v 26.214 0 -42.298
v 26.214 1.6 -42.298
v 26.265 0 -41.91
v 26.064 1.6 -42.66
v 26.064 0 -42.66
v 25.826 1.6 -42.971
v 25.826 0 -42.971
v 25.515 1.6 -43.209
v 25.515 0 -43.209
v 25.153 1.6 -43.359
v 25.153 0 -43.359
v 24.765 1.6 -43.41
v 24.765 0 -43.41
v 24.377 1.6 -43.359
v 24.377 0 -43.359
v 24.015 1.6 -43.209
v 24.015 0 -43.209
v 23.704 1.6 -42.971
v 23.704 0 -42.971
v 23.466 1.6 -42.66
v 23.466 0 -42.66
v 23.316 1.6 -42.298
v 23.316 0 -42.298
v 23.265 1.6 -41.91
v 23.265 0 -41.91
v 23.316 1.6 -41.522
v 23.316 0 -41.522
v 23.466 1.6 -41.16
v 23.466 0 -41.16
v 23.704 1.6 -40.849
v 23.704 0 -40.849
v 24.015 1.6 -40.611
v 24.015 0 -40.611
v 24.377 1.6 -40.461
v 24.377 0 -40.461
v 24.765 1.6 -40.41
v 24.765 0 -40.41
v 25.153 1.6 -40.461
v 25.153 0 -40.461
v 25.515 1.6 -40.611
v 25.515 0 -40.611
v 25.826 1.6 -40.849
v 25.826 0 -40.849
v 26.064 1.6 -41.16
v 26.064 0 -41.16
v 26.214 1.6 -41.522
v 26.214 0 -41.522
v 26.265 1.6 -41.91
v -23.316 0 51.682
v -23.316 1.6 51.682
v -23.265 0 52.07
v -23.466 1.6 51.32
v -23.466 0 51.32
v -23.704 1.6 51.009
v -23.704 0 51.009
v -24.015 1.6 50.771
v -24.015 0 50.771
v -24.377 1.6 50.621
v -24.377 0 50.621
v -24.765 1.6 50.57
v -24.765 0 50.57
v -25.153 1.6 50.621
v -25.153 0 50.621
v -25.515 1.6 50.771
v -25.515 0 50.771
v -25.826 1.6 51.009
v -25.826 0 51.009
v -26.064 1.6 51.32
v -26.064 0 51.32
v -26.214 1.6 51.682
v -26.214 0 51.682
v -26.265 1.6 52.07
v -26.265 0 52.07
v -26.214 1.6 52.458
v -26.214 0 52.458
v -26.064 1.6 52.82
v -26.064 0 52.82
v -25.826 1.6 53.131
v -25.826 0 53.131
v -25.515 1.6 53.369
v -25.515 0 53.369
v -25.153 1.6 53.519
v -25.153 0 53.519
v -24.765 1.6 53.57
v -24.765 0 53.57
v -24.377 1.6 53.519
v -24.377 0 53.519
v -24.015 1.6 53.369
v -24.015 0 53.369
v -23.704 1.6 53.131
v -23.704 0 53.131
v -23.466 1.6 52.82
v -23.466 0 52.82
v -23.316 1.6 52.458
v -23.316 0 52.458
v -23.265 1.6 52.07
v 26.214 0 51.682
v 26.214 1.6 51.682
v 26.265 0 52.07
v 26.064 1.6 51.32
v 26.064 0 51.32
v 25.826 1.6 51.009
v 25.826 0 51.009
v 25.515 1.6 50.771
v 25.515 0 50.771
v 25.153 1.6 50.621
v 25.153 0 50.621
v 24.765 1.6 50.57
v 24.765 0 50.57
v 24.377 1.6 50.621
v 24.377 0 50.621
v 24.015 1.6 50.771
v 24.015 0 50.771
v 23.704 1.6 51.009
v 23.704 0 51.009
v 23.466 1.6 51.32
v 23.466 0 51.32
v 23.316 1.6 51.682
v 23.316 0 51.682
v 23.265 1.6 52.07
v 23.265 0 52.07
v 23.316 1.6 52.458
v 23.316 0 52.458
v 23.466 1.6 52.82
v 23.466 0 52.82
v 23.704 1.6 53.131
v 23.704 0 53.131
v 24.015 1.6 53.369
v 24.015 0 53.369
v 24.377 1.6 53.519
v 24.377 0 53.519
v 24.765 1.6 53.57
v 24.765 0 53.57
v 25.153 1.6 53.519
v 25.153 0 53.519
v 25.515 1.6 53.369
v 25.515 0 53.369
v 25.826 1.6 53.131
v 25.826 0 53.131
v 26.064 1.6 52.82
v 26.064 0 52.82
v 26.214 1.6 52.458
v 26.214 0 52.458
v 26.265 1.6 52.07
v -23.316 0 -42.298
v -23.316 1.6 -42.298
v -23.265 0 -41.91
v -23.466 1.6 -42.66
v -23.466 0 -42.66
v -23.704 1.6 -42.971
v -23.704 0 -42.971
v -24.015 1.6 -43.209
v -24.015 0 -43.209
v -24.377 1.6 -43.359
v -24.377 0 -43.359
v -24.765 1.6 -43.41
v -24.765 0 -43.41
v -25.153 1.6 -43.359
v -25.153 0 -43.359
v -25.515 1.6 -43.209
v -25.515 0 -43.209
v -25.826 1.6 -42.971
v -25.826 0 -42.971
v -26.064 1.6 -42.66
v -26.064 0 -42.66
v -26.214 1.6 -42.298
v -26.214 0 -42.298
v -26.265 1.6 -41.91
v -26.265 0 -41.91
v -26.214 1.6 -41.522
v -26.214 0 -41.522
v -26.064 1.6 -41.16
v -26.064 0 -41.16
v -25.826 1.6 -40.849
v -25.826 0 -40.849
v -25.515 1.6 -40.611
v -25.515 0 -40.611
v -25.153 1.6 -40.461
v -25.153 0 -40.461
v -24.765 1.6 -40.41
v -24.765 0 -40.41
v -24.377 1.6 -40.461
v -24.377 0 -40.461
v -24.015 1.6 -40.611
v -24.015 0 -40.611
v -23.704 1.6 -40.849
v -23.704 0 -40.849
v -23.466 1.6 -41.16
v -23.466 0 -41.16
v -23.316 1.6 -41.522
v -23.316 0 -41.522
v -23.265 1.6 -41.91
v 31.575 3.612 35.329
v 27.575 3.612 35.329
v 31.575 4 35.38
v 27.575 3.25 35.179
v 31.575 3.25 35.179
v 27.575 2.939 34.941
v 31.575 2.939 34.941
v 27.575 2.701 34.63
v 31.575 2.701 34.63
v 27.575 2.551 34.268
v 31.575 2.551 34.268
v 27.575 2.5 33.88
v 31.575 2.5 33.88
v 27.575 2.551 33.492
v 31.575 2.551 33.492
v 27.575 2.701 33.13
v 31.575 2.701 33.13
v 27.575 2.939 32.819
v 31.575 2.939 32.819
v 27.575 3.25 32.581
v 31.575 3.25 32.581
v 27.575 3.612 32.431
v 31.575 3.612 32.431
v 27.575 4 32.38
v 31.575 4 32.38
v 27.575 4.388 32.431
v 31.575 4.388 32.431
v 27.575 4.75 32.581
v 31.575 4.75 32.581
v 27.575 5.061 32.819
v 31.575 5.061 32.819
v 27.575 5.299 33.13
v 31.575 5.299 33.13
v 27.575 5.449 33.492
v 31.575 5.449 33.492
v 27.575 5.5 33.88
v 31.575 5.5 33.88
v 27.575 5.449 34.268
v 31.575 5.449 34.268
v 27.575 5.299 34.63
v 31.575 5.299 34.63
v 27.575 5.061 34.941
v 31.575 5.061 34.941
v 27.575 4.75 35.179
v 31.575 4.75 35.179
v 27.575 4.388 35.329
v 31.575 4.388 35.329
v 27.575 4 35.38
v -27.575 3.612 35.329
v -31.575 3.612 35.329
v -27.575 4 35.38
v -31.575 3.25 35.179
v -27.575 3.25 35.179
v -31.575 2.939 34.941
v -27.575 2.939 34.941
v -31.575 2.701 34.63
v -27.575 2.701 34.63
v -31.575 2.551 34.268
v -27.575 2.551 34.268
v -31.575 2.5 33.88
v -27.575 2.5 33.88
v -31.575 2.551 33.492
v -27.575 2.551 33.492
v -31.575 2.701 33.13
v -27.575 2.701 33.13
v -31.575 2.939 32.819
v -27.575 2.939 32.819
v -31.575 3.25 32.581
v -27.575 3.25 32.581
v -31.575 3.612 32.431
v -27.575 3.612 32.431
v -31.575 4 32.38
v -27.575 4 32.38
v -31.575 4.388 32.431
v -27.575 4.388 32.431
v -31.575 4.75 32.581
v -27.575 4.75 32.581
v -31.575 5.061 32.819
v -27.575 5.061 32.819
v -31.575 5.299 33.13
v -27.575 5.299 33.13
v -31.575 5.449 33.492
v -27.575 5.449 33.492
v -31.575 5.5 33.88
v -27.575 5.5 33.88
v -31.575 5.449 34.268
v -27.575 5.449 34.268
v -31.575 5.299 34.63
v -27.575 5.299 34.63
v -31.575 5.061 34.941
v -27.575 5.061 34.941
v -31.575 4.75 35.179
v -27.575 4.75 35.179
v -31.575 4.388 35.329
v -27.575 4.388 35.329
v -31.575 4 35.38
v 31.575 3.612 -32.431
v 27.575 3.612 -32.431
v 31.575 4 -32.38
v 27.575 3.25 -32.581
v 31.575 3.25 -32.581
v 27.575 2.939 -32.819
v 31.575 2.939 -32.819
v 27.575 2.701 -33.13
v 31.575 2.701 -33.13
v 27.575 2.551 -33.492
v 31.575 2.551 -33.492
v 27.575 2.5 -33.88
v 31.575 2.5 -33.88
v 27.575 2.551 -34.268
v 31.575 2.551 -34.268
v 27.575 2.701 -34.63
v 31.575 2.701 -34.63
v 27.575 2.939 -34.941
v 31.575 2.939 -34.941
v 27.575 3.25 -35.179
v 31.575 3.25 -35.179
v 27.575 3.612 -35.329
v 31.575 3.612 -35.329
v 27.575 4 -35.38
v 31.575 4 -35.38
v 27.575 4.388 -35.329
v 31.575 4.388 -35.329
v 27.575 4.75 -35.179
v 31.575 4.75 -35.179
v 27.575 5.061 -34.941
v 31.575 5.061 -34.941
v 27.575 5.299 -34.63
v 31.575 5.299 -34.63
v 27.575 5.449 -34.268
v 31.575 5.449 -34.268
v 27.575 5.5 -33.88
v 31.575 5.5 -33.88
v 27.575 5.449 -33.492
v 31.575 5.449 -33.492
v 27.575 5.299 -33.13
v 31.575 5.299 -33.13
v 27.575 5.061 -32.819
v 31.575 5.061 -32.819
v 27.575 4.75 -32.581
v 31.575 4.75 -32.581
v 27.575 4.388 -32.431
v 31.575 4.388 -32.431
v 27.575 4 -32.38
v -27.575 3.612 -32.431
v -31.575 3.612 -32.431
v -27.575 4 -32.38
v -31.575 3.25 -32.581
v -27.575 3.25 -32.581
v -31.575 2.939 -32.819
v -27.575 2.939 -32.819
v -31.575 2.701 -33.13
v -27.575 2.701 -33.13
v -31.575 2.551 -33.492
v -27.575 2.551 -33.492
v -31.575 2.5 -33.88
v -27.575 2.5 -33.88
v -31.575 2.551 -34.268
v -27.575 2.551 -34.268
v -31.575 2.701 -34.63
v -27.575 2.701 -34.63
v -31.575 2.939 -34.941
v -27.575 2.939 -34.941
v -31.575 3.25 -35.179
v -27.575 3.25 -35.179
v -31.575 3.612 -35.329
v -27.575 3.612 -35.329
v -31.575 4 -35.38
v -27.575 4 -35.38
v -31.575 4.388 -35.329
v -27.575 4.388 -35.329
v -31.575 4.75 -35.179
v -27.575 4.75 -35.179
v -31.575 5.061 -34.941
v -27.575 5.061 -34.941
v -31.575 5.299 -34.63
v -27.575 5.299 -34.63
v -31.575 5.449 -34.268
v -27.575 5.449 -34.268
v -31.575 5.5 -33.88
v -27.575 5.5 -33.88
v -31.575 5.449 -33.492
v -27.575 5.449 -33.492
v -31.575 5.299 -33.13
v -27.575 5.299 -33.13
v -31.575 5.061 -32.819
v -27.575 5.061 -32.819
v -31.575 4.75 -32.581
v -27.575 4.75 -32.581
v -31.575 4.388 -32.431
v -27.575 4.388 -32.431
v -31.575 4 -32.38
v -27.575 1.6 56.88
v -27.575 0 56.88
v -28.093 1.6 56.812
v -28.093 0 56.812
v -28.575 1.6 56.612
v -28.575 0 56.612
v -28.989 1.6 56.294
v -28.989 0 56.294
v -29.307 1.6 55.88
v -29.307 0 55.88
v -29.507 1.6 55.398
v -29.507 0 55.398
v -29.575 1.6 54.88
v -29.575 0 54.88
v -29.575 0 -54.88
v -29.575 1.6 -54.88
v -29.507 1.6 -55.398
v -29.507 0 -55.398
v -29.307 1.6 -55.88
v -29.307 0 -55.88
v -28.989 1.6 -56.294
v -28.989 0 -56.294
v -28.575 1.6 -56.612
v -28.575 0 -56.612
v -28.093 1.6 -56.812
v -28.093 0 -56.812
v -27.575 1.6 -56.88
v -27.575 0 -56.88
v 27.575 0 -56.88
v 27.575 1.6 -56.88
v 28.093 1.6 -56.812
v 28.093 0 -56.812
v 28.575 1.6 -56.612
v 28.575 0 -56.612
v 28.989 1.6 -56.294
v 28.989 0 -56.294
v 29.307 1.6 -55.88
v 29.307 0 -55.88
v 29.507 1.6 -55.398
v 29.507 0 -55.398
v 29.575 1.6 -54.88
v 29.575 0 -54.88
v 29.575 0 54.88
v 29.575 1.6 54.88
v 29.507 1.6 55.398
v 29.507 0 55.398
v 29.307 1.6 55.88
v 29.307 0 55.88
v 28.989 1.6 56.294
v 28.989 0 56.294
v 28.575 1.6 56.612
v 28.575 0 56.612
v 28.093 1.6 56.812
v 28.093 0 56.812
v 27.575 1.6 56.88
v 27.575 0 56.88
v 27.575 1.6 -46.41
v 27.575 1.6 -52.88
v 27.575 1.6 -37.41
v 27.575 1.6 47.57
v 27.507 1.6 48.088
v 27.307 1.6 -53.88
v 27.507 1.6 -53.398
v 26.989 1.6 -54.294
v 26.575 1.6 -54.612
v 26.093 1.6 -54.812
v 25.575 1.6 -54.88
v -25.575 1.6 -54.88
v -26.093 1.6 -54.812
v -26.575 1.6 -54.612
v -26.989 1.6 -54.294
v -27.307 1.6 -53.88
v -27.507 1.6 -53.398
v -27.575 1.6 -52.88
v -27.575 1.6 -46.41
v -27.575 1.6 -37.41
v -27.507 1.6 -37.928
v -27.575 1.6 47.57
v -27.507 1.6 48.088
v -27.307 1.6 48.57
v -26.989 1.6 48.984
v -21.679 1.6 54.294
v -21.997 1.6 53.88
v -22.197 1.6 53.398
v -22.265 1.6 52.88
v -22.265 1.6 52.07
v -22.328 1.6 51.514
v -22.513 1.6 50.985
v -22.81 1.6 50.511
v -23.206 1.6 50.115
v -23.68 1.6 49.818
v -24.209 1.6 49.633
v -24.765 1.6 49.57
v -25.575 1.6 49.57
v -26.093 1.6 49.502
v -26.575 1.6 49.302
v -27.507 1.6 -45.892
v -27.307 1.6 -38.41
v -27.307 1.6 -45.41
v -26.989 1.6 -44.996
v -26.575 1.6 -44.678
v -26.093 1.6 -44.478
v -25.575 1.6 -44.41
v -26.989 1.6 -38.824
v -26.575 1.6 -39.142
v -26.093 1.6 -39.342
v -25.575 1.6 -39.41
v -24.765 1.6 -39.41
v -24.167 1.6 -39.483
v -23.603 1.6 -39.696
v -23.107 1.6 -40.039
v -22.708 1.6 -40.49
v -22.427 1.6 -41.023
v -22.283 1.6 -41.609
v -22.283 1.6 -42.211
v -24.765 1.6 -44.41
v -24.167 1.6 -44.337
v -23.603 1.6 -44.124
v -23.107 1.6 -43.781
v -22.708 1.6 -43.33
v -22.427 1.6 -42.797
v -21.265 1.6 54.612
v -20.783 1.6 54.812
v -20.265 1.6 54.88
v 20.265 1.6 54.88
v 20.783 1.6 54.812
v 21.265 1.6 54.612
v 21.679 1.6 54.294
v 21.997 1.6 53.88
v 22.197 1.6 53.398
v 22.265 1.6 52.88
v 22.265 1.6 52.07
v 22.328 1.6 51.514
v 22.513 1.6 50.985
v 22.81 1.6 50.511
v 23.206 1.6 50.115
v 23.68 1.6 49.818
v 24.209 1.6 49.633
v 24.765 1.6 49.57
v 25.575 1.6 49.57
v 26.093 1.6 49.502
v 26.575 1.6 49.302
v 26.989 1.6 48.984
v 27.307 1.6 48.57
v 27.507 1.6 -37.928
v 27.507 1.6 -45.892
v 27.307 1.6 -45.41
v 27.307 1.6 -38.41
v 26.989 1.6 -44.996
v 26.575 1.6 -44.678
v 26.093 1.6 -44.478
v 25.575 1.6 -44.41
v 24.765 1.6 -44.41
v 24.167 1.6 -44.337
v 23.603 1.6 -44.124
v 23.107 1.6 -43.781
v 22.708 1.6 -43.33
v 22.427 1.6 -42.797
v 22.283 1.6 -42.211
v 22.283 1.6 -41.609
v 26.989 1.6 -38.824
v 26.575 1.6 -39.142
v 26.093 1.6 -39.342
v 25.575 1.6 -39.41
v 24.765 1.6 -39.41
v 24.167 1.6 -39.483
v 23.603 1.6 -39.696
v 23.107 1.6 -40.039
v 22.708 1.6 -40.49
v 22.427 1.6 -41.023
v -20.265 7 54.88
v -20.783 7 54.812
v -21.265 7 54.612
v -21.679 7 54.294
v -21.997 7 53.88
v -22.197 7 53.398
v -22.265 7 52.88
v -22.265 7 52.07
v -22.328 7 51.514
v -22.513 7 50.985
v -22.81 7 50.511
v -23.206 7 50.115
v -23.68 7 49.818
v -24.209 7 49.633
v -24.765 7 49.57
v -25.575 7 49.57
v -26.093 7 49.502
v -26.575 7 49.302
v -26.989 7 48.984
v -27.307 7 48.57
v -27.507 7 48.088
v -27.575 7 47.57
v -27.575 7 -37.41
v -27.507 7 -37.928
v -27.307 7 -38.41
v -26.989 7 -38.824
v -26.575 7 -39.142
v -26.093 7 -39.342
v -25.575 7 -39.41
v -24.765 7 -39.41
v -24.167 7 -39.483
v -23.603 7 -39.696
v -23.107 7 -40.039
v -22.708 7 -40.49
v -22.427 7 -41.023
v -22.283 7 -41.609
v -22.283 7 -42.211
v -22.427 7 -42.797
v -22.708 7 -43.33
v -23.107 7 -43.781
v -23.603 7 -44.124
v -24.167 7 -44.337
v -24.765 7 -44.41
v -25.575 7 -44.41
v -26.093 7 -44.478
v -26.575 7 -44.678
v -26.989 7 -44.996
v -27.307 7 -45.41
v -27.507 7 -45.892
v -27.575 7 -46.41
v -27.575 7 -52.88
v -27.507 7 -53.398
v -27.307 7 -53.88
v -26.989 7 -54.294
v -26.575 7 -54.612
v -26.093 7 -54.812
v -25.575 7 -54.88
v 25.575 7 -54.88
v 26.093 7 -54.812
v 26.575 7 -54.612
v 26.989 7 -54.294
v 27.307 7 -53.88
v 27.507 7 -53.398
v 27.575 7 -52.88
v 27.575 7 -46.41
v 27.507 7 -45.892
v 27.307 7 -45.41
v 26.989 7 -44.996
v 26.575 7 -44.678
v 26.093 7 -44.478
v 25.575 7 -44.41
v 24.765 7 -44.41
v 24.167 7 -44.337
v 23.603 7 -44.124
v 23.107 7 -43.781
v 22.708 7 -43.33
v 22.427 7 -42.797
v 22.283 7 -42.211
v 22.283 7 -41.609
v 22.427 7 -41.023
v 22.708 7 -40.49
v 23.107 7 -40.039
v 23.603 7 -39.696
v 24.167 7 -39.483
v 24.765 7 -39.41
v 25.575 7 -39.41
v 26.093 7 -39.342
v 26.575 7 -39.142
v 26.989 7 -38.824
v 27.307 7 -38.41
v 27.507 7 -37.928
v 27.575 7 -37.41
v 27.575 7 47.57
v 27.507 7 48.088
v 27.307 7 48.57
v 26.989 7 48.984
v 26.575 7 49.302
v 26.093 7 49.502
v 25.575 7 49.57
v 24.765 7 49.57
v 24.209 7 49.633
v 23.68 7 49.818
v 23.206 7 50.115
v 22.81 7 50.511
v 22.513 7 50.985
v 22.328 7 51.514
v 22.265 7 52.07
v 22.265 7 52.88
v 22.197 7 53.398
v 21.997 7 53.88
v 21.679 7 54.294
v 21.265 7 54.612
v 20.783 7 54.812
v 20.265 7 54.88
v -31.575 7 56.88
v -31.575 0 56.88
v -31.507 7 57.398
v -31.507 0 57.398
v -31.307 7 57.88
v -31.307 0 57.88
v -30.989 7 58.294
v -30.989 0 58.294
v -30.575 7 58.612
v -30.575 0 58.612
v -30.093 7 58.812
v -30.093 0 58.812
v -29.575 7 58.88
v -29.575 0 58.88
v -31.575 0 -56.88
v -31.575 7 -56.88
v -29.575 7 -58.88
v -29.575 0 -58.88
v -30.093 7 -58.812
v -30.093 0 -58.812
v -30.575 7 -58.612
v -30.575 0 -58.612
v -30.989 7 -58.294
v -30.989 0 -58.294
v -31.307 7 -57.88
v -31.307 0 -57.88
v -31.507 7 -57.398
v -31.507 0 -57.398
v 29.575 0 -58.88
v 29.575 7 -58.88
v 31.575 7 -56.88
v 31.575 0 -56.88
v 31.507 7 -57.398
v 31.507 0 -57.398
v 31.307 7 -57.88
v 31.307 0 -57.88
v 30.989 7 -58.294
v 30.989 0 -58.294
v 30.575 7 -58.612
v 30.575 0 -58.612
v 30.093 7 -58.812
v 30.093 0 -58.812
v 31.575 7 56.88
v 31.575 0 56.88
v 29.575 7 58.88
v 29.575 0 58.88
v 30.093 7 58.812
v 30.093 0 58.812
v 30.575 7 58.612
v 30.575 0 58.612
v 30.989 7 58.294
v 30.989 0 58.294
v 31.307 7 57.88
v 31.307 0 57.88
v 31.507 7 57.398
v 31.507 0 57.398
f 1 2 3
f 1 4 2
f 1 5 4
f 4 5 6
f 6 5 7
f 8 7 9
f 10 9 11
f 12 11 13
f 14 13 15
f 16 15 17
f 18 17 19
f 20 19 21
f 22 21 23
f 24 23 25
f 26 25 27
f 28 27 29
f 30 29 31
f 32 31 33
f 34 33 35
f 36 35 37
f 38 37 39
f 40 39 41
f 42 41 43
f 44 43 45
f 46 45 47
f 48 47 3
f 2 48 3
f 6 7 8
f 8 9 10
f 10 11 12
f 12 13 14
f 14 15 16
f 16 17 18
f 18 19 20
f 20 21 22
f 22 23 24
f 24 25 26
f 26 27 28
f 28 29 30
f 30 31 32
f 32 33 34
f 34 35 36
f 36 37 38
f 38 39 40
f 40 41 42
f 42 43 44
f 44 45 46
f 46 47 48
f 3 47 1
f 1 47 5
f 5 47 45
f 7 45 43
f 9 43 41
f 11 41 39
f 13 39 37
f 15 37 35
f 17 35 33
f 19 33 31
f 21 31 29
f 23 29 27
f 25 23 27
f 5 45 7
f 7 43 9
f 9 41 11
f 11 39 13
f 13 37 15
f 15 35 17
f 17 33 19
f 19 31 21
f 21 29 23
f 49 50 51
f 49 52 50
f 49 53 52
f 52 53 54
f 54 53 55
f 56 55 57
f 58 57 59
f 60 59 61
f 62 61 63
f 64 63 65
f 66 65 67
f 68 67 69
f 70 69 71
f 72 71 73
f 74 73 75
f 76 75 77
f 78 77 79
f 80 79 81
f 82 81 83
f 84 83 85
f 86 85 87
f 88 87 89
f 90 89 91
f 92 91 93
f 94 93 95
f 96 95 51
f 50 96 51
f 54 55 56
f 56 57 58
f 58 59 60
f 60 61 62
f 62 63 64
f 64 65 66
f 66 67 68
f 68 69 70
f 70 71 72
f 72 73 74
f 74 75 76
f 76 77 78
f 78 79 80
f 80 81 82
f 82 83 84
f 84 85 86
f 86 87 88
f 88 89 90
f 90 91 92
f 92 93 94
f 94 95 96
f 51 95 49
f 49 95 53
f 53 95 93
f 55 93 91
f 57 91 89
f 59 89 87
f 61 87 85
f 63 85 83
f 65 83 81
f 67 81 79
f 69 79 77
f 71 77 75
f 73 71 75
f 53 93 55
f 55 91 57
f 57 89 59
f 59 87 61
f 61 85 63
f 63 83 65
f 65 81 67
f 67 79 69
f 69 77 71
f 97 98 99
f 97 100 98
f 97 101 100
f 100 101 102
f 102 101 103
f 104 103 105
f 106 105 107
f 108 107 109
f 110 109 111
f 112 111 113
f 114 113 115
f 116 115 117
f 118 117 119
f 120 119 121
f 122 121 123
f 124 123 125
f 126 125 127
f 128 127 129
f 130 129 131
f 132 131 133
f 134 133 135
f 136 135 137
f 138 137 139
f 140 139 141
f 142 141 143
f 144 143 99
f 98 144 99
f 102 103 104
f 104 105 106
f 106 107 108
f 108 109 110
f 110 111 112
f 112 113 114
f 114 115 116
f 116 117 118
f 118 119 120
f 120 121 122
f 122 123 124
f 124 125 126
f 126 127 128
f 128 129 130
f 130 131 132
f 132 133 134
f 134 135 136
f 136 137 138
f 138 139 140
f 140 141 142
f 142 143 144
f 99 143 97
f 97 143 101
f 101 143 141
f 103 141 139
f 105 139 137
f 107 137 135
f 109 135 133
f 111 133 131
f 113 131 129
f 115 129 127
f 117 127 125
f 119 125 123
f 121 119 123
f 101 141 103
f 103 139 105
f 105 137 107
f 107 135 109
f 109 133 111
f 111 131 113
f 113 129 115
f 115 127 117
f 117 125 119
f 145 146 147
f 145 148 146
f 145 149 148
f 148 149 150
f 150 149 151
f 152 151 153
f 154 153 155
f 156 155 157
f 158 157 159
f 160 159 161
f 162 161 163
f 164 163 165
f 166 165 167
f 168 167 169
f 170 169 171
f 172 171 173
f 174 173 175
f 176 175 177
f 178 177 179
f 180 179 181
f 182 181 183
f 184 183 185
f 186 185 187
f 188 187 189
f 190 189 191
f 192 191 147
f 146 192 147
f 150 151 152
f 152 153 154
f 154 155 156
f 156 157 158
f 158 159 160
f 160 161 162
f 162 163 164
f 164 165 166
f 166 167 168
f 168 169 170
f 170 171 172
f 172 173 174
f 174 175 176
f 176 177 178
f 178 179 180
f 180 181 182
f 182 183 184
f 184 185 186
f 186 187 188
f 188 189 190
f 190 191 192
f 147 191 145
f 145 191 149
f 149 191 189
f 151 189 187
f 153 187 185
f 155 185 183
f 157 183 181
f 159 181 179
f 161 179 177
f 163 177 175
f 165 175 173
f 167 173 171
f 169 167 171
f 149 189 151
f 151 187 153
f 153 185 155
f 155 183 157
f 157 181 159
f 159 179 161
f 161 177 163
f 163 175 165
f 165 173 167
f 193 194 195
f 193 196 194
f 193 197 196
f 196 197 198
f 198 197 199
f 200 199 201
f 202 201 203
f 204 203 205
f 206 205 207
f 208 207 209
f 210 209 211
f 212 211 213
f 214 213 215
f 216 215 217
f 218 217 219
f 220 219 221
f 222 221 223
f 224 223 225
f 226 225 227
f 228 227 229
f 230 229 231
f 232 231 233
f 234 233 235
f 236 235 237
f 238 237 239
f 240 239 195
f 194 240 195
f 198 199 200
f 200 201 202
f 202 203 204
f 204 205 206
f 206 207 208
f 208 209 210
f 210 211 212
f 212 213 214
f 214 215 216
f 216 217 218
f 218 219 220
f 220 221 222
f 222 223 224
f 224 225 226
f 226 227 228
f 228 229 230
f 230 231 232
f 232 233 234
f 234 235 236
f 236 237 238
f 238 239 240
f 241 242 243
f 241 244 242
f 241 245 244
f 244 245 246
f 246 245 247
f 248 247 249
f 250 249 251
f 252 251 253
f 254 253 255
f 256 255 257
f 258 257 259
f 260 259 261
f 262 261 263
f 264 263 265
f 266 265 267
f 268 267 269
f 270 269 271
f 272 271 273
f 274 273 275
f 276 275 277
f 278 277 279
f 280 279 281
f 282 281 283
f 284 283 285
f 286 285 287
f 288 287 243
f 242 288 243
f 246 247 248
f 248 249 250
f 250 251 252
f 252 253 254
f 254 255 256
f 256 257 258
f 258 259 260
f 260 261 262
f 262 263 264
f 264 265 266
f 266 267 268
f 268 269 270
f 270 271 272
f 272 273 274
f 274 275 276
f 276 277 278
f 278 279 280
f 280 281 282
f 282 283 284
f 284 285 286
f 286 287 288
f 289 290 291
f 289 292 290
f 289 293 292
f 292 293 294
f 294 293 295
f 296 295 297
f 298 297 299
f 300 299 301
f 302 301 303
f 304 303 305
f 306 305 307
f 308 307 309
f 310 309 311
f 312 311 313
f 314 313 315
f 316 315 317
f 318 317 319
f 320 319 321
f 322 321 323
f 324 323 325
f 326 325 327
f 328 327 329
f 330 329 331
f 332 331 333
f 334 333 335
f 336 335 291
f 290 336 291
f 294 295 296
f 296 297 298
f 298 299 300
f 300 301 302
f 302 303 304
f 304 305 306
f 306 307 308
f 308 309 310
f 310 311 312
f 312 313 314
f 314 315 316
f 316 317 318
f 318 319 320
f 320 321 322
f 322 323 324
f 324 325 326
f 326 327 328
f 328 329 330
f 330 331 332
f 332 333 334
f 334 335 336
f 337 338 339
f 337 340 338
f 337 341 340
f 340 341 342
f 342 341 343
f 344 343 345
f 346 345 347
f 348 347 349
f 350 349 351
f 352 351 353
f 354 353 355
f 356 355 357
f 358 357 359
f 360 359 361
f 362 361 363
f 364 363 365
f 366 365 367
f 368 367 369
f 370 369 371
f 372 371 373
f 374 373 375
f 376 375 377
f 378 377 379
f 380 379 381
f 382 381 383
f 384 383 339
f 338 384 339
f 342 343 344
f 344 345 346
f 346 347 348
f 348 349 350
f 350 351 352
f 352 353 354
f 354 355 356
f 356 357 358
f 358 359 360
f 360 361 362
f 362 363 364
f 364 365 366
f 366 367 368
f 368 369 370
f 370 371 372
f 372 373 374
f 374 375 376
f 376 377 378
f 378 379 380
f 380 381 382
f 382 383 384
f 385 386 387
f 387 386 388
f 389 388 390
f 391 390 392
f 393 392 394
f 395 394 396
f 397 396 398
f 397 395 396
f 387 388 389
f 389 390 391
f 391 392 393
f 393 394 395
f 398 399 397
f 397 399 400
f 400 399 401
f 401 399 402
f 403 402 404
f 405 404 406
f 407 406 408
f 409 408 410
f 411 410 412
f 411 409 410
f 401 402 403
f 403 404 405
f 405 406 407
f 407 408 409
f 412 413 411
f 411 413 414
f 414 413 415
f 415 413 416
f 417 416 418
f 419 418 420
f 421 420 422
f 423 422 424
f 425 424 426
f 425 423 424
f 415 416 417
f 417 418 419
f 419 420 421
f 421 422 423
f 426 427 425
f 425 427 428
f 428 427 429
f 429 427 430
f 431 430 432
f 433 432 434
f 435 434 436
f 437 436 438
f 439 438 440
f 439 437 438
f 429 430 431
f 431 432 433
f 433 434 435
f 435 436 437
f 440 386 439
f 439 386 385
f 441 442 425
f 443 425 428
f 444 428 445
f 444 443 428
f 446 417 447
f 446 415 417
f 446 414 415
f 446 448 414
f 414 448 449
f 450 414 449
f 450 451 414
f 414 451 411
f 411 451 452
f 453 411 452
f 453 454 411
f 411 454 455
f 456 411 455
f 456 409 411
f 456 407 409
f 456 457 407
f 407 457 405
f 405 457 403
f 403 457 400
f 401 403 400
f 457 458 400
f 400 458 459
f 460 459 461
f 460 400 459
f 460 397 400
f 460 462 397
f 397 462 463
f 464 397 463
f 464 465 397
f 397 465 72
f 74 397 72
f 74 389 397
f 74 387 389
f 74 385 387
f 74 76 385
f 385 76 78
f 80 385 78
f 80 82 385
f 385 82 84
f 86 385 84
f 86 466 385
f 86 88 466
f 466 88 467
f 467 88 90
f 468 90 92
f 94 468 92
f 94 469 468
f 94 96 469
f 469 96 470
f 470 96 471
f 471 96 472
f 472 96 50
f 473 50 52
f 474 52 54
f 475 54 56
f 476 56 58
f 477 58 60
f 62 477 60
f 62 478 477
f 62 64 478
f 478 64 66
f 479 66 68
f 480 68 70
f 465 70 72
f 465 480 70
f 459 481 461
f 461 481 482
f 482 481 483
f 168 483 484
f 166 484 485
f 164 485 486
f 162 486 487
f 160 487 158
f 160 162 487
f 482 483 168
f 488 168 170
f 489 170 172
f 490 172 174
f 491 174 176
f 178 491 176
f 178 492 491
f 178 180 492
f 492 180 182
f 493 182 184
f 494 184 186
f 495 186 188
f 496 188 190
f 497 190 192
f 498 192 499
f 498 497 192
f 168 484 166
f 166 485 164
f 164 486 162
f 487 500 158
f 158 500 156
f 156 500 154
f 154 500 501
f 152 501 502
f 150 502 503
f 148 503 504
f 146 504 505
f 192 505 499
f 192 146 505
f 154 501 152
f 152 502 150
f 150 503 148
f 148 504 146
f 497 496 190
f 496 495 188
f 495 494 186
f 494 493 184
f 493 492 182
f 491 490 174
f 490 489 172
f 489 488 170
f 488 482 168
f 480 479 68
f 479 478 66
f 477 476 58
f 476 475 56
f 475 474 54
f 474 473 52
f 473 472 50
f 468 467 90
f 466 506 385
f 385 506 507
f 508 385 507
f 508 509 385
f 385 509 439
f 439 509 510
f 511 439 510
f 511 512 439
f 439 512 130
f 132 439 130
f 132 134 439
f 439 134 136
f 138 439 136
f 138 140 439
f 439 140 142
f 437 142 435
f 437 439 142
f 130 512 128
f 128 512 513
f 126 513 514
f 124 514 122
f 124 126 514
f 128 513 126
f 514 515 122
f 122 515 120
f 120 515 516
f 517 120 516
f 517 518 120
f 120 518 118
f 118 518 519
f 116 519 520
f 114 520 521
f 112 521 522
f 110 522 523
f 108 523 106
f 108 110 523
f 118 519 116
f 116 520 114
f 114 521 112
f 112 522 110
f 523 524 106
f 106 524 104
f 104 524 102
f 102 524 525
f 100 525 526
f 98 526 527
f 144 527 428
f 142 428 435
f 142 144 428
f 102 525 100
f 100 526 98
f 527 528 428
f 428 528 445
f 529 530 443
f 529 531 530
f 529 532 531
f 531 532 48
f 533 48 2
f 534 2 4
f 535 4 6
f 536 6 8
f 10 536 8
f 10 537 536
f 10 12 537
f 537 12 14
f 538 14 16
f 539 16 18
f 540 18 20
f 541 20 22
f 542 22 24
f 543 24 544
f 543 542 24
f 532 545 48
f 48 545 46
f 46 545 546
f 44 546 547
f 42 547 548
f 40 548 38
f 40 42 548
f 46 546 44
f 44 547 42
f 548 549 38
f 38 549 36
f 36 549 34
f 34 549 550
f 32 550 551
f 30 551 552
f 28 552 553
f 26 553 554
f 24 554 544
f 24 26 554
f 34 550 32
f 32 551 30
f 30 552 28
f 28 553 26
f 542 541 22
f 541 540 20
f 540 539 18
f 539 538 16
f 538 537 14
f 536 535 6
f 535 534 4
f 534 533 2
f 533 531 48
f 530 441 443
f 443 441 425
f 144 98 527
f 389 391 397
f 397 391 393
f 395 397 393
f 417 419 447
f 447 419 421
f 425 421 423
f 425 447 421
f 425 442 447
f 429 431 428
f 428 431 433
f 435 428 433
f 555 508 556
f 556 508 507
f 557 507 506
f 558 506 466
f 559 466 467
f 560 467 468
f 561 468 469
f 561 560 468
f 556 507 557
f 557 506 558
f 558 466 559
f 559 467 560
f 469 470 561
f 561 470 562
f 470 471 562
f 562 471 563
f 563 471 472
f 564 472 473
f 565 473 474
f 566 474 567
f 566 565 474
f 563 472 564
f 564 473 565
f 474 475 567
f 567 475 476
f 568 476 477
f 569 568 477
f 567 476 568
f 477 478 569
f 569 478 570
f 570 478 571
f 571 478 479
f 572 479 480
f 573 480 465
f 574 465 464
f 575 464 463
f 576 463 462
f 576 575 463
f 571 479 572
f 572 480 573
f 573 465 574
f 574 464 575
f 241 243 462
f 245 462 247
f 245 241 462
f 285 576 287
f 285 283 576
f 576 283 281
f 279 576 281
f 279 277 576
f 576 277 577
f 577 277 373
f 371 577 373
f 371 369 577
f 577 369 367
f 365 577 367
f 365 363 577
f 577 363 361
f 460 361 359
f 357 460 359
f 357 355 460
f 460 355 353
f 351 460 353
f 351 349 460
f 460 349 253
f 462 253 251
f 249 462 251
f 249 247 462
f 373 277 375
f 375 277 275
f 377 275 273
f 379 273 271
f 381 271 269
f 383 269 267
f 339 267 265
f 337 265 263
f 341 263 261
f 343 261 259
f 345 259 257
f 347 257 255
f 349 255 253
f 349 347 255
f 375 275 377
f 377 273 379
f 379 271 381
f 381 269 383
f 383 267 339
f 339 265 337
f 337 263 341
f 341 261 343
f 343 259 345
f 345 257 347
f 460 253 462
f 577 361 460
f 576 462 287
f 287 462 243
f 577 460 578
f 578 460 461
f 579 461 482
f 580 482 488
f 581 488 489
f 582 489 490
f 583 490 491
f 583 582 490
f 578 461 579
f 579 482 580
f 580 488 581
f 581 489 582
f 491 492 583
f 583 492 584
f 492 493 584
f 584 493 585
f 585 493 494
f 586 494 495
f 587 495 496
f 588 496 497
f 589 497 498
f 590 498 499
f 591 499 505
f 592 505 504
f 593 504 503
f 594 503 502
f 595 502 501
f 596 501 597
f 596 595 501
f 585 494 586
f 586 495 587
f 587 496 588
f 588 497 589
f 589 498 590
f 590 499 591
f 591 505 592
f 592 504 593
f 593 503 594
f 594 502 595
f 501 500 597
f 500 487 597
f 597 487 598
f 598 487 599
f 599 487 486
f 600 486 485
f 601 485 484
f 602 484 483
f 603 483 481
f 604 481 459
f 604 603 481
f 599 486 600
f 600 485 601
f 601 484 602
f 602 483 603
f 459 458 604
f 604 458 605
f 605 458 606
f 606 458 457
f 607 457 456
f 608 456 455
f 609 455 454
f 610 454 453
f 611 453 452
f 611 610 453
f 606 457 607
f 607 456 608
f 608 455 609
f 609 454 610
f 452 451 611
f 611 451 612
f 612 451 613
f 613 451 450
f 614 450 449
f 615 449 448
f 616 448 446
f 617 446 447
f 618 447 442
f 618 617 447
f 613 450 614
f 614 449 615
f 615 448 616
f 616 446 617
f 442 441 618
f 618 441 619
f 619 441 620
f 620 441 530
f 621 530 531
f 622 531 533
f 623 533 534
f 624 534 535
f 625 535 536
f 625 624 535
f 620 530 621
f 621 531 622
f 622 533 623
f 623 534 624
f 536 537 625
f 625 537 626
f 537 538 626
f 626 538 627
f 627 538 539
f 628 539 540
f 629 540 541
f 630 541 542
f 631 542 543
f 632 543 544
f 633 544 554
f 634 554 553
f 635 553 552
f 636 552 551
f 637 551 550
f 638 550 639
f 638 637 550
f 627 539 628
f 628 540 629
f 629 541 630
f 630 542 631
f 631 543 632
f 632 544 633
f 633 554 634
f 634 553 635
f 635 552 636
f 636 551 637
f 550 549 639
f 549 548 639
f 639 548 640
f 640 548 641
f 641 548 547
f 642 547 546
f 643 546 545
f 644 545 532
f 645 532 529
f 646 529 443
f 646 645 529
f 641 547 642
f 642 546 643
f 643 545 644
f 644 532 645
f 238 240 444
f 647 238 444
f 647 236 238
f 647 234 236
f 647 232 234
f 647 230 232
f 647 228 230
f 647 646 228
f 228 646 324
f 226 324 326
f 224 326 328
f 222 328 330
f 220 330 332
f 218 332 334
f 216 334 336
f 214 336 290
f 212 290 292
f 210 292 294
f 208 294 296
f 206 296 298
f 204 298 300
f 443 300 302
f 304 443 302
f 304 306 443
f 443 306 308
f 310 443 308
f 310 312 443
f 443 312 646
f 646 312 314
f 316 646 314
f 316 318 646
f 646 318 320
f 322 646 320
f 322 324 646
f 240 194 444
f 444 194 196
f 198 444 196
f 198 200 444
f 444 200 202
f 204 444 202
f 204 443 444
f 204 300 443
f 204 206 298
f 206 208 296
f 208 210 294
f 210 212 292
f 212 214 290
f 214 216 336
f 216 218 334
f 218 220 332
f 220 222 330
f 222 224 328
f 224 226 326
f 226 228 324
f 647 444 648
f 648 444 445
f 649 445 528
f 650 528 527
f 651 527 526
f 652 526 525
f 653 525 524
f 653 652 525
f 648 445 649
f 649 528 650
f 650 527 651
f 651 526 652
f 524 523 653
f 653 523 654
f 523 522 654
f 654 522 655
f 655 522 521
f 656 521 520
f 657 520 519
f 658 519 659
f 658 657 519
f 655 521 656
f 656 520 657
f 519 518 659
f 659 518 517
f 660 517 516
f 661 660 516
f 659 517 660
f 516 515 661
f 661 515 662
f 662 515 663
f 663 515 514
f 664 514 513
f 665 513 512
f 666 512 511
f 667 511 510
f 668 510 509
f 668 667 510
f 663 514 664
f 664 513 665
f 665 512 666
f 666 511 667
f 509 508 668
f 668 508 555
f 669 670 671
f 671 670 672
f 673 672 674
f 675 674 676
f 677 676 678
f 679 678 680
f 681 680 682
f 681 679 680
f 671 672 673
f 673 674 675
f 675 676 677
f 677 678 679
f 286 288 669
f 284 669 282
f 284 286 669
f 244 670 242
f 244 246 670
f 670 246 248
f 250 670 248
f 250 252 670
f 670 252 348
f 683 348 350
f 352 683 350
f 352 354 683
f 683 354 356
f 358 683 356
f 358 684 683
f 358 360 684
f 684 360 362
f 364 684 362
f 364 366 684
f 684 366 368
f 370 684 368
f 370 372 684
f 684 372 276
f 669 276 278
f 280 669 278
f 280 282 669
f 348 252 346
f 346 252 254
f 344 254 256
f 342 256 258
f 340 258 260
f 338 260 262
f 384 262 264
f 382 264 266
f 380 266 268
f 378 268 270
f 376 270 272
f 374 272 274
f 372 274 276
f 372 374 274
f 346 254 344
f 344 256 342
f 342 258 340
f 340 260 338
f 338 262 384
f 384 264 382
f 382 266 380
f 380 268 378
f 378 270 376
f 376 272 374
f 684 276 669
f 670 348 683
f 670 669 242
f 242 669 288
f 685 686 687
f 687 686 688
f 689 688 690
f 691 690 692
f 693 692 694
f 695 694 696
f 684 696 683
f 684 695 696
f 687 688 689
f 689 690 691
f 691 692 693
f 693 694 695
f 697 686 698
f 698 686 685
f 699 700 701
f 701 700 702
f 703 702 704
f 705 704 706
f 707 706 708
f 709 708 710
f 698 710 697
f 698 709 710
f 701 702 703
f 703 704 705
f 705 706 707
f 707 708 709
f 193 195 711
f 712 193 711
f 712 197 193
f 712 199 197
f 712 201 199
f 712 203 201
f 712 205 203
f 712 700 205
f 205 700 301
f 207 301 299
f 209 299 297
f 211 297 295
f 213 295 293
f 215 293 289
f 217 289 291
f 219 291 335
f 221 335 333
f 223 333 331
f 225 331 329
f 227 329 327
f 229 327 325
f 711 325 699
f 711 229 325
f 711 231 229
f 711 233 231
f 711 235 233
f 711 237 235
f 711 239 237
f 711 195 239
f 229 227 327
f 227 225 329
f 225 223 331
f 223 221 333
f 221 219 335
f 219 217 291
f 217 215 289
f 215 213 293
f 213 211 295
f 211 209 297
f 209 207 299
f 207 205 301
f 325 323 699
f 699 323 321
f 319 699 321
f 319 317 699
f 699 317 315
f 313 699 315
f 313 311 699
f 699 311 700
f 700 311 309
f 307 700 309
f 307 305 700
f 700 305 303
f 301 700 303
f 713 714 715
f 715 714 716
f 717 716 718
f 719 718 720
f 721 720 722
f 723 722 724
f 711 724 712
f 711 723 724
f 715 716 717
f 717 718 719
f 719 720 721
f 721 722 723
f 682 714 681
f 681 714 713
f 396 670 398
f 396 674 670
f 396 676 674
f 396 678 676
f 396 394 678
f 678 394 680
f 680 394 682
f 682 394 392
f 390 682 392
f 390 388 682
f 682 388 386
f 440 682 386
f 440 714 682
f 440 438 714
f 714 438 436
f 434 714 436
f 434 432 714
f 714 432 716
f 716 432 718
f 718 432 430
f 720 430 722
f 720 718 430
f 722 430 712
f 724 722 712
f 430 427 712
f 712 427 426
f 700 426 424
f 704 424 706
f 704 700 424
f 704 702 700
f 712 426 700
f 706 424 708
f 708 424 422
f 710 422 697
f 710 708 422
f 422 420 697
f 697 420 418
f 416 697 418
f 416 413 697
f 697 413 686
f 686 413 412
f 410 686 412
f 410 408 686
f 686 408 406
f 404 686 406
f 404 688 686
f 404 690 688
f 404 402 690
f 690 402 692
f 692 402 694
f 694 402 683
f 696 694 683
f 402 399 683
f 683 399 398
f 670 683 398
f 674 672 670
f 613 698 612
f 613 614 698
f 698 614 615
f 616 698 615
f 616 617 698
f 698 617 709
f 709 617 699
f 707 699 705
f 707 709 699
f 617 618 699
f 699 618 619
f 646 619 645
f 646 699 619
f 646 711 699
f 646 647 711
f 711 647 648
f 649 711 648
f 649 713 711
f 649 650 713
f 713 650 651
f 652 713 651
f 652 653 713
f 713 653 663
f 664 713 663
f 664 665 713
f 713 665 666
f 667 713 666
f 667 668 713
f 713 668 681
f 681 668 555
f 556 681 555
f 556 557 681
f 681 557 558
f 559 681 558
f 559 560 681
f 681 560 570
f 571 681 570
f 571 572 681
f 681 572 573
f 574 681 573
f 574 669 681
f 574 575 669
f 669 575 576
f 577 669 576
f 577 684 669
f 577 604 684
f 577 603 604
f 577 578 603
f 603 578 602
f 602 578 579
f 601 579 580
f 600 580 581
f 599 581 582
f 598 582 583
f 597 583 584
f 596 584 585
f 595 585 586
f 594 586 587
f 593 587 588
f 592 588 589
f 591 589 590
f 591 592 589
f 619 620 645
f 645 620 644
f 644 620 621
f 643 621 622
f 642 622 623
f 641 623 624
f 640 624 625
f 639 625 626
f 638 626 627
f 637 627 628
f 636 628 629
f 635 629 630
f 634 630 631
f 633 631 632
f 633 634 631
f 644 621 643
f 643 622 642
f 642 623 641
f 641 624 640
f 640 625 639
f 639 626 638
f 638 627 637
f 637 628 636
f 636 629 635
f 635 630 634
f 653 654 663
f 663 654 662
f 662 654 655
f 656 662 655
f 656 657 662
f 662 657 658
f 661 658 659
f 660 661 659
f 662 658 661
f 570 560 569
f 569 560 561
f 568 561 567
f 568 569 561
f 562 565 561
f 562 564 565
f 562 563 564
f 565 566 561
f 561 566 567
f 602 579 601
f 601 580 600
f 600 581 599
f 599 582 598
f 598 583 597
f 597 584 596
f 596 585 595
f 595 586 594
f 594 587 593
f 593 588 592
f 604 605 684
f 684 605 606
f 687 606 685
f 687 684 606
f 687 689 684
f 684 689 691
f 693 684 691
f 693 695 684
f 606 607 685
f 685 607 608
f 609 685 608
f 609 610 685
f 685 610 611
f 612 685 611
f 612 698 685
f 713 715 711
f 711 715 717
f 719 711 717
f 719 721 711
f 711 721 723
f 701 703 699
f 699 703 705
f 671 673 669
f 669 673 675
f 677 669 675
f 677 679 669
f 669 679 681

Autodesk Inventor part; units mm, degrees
ref_plane "YZ Plane" through (0, 0, 0) normal (1, 0, 0) x (0, 1, 0)
ref_plane "XZ Plane" through (0, 0, 0) normal (0, 1, 0) x (-1, 0, 0)
ref_plane "XY Plane" through (0, 0, 0) normal (0, 0, 1) x (1, 0, 0)
sketch "Sketch1" plane through (0, 0, 0) normal (0, 1, 0) x (-1, 0, 0)
  line L0 (29.575, 58.88) -> (-29.575, 58.88)
  line L1 (-31.575, 56.88) -> (-31.575, -56.88)
  line L2 (-29.575, -58.88) -> (29.575, -58.88)
  line L3 (31.575, -56.88) -> (31.575, 56.88)
  line L4 (21.765, 52.07) -> (27.765, 52.07) construction
  line L5 (0, 0) -> (-80.4548, 0) construction
  line L6 (0, 0) -> (0, 46.6746) construction
  line L7 (28.575, 55.88) -> (-28.575, 55.88) construction
  line L8 (-28.575, 55.88) -> (-28.575, -55.88) construction
  line L9 (-28.575, -55.88) -> (28.575, -55.88) construction
  line L10 (28.575, -55.88) -> (28.575, 55.88) construction
  circle A0 centre (24.765, 52.07) radius 1.5 construction
  circle A1 centre (-24.765, 52.07) radius 1.5 construction
  circle A2 centre (24.765, -41.91) radius 3.8303 construction
  circle A3 centre (-24.765, -41.91) radius 3.8303 construction
  line L11 (20.265, 54.88) -> (-20.265, 54.88)
  line L12 (-25.575, -54.88) -> (25.575, -54.88)
  line L13 (28.575, 55.88) -> (-28.575, -55.88) construction
  line L14 (28.575, -55.88) -> (-28.575, 55.88) construction
  arc A4 (25.575, -54.88) -> (27.575, -52.88) centre (25.575, -52.88) ccw
  arc A5 (-27.575, -52.88) -> (-25.575, -54.88) centre (-25.575, -52.88) ccw
  arc A6 (-29.575, 58.88) -> (-31.575, 56.88) centre (-29.575, 56.88) ccw
  arc A7 (31.575, 56.88) -> (29.575, 58.88) centre (29.575, 56.88) ccw
  arc A8 (29.575, -58.88) -> (31.575, -56.88) centre (29.575, -56.88) ccw
  arc A9 (-31.575, -56.88) -> (-29.575, -58.88) centre (-29.575, -56.88) ccw
  circle A10 centre (24.765, 52.07) radius 1.5
  line L15 (24.765, 49.57) -> (25.575, 49.57)
  line L16 (22.265, 52.07) -> (22.265, 52.88)
  arc A11 (27.575, 47.57) -> (25.575, 49.57) centre (25.575, 47.57) ccw
  arc A12 (22.265, 52.88) -> (20.265, 54.88) centre (20.265, 52.88) ccw
  circle A13 centre (-24.765, 52.07) radius 1.5 construction
  circle A14 centre (-24.765, 52.07) radius 1.5
  arc A15 (-24.765, 49.57) -> (-22.265, 52.07) centre (-24.765, 52.07) ccw
  arc A16 (-25.575, 49.57) -> (-27.575, 47.57) centre (-25.575, 47.57) ccw
  arc A17 (-20.265, 54.88) -> (-22.265, 52.88) centre (-20.265, 52.88) ccw
  line L17 (-24.765, 49.57) -> (-25.575, 49.57)
  line L18 (-22.265, 52.07) -> (-22.265, 52.88)
  arc A18 (22.265, 52.07) -> (24.765, 49.57) centre (24.765, 52.07) ccw
  circle A19 centre (24.765, -41.91) radius 1.5
  circle A20 centre (-24.765, -41.91) radius 1.5
  arc A21 (-24.765, -44.41) -> (-24.765, -39.41) centre (-24.765, -41.91) ccw
  line L19 (-24.765, -44.41) -> (-25.575, -44.41)
  line L20 (-24.765, -39.41) -> (-25.575, -39.41)
  line L21 (-27.575, 47.57) -> (-27.575, -37.41)
  line L22 (-27.575, -46.41) -> (-27.575, -52.88)
  arc A22 (-27.575, -37.41) -> (-25.575, -39.41) centre (-25.575, -37.41) ccw
  arc A23 (-25.575, -44.41) -> (-27.575, -46.41) centre (-25.575, -46.41) ccw
  line L23 (24.765, -44.41) -> (25.575, -44.41)
  line L24 (24.765, -39.41) -> (25.575, -39.41)
  arc A24 (25.575, -39.41) -> (27.575, -37.41) centre (25.575, -37.41) ccw
  arc A25 (27.575, -46.41) -> (25.575, -44.41) centre (25.575, -46.41) ccw
  line L25 (27.575, -52.88) -> (27.575, -46.41)
  line L26 (27.575, -37.41) -> (27.575, 47.57)
  arc A26 (24.765, -39.41) -> (24.765, -44.41) centre (24.765, -41.91) ccw
  point P0 (31.575, 58.88)
  point P1 (-31.575, -58.88)
  point P2 (-31.575, 58.88)
  point P3 (31.575, -58.88)
  point P4 (-27.575, 54.88)
  dimension "d77" = 57.15
  dimension "d78" = 3.81
  dimension "d79" = 3.81
  dimension "d80" = 3.81
  dimension "d81" = 3.81
  dimension "d82" = 3
  dimension "d85" = 111.76
  dimension "d88" = 3.81
  dimension "d100" = 1
  dimension "d101" = 3
  dimension "d104" = 1
  dimension "d107" = 3
  dimension "d109" = 3
  dimension "d122" = 3
  dimension "d123" = 2
  dimension "d132" = 2
  dimension "d145" = 2
  dimension "d150" = 2.5
  dimension "d151" = 3
  dimension "d152" = 3
  dimension "d154" = 5
  dimension "d155" = 2
  dimension "d156" = 1
  dimension "d157" = 12.97
extrude "Extrusion1" add sketch "Sketch1" along normal blind 7
sketch "Sketch2" plane through (0, 0, 0) normal (0, -1, 0) x (1, 0, 0)
  line L0 (-27.575, 56.88) -> (27.575, 56.88)
  line L1 (29.575, 54.88) -> (29.575, -54.88)
  line L2 (27.575, -56.88) -> (-27.575, -56.88)
  line L3 (-29.575, -54.88) -> (-29.575, 54.88)
  line L4 (29.575, 56.88) -> (-29.575, -56.88) construction
  line L5 (29.575, -56.88) -> (-29.575, 56.88) construction
  arc A0 (29.575, 54.88) -> (27.575, 56.88) centre (27.575, 54.88) ccw
  arc A1 (-27.575, 56.88) -> (-29.575, 54.88) centre (-27.575, 54.88) ccw
  arc A2 (-29.575, -54.88) -> (-27.575, -56.88) centre (-27.575, -54.88) ccw
  arc A3 (27.575, -56.88) -> (29.575, -54.88) centre (27.575, -54.88) ccw
  circle A4 centre (-24.765, 52.07) radius 1.5 projected
  point P0 (0, 0)
  dimension "d26" = 59.15
  dimension "d27" = 113.76
  dimension "d131" = 2
extrude "Extrusion2" cut sketch "Sketch2" against normal blind 1.6
sketch "Sketch5" plane through (-31.575, 0, -56.88) normal (-1, 0, 0) x (0, 0, 1)
  circle A0 centre (23, 4) radius 1.5
  circle A1 centre (90.76, 4) radius 1.5
  line L0 (10.47, 7) -> (4, 7) projected
  line L1 (115.76, 0) -> (115.76, 7) projected
  line L2 (-2, 0) -> (-2, 7) projected
  circle A2 centre (90.76, 5.5) radius 1.5
  line L3 (92.26, 4) -> (92.26, 5.5)
  line L4 (90.76, 4) -> (90.76, 5.5) construction
  line L5 (89.26, 5.5) -> (89.26, 4)
  point P0 (56.88, 0)
  point P1 (109.76, 7)
  point P2 (104.45, 7)
  dimension "d133" = 3
  dimension "d134" = 3
  dimension "d135" = 3
  dimension "d136" = 3
  dimension "d137" = 25
  dimension "d138" = 25
  dimension "d141" = 3
  dimension "d142" = 1.5
extrude "Extrusion5" cut sketch "Sketch5" against normal blind 70 contours A0 | A1 A2 | A1 A2 picked at (90.702, 3.0107) picked at (90.702, 4.5034)
sketch "Sketch6" plane through (0, 1.6, 0) normal (0, -1, 0) x (1, 0, 0)
  circle A0 centre (-24.765, 52.07) radius 1.5 projected
  circle A1 centre (24.765, 52.07) radius 1.5 projected
  circle A2 centre (24.765, -41.91) radius 1.5 projected
  circle A3 centre (-24.765, -41.91) radius 1.5 projected
  point P0 (0, 0)
extrude "Extrusion6" add sketch "Sketch6" along normal blind 1.6 and the other way blind 5.4
properties part number "RahmenV05_BOT"
